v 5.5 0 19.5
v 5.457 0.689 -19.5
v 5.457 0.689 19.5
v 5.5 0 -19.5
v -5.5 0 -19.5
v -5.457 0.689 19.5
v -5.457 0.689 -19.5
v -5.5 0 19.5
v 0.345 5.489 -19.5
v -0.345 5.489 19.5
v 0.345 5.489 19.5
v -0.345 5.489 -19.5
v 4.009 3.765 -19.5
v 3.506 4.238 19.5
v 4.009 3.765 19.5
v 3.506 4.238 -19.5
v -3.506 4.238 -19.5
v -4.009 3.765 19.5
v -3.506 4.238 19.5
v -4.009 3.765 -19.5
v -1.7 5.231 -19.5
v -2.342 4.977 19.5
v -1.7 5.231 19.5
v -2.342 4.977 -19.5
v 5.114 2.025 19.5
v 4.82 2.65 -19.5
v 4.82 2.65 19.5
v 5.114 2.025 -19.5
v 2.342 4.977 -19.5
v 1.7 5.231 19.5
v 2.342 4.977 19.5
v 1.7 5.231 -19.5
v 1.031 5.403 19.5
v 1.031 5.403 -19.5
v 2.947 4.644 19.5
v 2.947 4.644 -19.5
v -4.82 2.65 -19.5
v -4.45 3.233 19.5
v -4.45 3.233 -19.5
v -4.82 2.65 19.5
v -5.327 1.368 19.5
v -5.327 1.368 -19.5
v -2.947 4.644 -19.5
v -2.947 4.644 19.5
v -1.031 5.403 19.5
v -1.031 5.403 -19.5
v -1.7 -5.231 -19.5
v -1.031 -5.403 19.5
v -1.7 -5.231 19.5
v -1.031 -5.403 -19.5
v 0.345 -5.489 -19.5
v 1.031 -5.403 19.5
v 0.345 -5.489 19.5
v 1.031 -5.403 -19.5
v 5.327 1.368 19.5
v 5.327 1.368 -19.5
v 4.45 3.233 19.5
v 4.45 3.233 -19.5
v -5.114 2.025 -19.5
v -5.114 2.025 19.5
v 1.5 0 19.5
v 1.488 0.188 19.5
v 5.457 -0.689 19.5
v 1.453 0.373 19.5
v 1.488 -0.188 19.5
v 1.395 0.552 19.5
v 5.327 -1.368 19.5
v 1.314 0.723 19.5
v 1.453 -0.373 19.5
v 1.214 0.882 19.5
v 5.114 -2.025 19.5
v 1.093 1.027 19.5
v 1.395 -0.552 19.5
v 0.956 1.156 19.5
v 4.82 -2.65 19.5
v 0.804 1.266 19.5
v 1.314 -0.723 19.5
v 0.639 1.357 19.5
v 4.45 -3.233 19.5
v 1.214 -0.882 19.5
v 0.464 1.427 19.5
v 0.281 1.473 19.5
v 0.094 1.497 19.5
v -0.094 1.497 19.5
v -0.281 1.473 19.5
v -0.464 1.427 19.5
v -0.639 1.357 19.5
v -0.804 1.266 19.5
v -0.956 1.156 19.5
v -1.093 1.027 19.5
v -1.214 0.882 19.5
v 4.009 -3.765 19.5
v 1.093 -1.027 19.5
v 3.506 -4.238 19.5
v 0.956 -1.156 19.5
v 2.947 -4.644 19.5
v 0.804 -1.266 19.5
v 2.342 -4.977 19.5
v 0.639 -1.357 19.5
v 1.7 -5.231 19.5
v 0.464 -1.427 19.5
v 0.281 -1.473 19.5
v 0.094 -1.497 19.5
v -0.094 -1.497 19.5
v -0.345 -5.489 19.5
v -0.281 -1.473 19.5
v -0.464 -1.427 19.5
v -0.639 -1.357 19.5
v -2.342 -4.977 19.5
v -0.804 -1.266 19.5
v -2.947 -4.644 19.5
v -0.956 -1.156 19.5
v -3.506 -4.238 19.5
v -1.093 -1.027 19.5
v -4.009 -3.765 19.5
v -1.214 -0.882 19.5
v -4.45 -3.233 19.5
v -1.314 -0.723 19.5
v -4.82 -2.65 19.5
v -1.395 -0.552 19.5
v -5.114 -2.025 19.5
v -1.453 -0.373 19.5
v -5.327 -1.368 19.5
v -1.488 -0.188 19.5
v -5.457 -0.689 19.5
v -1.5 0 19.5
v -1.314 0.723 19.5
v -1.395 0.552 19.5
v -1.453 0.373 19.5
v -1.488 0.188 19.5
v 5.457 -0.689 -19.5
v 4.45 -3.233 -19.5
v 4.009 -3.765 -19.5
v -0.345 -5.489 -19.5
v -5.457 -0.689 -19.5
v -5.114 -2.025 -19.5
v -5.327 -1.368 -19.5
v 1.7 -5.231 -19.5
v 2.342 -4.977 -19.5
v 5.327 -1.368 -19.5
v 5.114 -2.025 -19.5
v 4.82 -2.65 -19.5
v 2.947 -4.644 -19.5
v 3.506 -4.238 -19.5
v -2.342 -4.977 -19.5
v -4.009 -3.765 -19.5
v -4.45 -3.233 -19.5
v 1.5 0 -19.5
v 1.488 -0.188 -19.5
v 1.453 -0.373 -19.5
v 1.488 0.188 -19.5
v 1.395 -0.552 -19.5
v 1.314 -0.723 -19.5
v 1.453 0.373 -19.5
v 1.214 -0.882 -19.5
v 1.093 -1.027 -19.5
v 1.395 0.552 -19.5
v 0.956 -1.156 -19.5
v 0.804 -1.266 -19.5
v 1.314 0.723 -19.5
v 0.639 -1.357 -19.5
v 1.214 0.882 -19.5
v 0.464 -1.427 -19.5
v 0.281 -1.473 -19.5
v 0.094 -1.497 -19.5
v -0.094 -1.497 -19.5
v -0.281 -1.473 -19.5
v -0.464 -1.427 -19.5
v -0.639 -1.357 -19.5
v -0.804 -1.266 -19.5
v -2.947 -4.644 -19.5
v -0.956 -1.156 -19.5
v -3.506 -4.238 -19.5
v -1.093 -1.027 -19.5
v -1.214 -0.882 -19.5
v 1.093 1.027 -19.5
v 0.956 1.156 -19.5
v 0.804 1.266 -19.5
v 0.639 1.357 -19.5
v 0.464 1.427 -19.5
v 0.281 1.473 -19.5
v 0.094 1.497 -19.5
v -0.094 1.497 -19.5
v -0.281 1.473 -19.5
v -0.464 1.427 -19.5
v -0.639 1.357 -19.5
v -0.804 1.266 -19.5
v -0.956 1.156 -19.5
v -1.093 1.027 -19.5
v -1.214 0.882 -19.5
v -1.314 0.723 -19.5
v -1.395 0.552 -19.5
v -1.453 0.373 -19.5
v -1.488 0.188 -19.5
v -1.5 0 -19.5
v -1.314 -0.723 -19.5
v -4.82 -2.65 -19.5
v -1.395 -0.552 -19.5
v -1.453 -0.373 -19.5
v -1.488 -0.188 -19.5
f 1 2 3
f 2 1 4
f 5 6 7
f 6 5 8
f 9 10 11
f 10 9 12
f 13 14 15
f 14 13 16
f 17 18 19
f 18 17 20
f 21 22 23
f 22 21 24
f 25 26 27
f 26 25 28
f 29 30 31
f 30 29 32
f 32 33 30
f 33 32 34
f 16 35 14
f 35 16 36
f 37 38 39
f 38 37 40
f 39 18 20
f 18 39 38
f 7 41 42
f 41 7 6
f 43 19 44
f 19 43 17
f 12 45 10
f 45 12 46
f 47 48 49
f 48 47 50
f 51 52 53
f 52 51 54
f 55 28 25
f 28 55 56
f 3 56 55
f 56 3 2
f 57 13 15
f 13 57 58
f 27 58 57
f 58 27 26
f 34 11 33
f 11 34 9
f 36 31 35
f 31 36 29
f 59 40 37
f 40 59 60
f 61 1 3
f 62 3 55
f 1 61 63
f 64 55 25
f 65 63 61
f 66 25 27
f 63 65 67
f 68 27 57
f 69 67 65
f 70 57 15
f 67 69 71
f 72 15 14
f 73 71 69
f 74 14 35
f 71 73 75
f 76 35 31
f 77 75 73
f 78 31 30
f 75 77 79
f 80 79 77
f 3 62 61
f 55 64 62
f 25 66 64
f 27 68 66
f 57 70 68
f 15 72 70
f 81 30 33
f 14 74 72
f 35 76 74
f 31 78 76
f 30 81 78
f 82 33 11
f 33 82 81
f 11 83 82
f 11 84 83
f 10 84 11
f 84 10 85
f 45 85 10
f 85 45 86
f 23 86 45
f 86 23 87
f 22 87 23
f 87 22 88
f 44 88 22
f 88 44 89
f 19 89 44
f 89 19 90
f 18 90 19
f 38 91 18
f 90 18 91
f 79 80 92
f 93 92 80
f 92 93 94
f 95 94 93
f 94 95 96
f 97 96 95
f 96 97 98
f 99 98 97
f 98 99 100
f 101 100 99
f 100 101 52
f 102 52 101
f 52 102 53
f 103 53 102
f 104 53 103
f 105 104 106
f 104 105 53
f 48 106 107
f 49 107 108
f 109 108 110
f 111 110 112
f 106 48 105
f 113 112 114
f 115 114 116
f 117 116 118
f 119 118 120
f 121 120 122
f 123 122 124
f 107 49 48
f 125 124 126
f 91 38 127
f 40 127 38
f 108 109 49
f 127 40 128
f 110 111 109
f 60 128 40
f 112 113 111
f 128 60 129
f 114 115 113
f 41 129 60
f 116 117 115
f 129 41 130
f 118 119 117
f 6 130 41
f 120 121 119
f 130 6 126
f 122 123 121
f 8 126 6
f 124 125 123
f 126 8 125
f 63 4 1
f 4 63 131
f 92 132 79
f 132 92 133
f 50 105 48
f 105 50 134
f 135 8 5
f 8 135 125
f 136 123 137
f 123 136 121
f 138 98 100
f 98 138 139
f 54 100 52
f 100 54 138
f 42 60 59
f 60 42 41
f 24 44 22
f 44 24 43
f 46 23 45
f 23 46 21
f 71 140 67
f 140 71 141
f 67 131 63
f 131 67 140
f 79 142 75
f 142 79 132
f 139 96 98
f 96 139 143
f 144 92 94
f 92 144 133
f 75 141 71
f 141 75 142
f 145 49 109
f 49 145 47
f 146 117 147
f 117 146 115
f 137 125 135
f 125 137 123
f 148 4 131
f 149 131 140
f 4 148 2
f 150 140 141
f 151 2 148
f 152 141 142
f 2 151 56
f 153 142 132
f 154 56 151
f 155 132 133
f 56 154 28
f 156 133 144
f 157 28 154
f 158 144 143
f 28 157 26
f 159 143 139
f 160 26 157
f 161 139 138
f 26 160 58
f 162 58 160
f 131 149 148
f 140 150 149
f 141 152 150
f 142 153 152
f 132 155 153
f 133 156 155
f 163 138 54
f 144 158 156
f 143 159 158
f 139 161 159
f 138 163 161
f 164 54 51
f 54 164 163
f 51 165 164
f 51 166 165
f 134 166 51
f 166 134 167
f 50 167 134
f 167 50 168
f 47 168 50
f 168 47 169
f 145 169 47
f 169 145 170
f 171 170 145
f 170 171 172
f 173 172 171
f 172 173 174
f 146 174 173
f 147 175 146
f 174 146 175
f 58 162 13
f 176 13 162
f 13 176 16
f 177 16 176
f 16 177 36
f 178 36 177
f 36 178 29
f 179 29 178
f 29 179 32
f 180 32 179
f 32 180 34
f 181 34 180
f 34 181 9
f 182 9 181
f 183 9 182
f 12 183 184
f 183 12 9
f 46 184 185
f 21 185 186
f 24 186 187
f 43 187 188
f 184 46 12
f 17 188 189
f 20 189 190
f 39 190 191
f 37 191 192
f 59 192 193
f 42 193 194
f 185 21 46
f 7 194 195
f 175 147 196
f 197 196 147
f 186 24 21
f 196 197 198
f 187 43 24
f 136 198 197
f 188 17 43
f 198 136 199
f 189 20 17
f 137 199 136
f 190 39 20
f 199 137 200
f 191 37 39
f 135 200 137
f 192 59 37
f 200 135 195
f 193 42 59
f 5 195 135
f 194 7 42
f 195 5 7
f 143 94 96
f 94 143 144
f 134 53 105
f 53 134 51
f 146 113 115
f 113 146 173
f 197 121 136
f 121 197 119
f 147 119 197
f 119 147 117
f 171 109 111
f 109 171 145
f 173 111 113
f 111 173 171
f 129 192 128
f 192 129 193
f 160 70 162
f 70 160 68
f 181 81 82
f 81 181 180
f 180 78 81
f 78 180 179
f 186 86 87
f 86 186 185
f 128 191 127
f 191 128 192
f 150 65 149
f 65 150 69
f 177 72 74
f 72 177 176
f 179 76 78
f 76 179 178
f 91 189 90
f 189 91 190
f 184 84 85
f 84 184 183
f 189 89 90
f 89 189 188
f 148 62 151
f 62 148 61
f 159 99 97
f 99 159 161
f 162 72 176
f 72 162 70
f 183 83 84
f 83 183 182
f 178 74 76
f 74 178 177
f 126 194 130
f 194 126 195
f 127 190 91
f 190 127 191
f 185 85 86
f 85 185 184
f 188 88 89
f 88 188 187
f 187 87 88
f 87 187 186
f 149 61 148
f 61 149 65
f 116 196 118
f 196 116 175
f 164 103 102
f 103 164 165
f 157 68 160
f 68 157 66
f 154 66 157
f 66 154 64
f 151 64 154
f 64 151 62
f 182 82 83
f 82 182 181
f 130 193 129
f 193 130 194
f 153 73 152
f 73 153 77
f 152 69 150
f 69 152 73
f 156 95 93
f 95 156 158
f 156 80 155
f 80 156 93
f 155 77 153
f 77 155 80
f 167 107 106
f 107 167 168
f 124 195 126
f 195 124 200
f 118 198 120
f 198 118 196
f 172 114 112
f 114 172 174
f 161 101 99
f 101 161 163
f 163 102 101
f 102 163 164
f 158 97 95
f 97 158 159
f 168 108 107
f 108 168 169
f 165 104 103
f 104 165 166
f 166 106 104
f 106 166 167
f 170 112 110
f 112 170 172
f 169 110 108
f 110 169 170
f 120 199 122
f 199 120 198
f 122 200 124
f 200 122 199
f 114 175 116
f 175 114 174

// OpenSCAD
$fn = 50;


difference() {
	union() {
		translate(v = [0, 0, -19.5000000000]) {
			cylinder(h = 39, r = 5.5000000000);
		}
	}
	union() {
		translate(v = [0, 0, -100.0000000000]) {
			cylinder(h = 200, r = 1.5000000000);
		}
	}
}
